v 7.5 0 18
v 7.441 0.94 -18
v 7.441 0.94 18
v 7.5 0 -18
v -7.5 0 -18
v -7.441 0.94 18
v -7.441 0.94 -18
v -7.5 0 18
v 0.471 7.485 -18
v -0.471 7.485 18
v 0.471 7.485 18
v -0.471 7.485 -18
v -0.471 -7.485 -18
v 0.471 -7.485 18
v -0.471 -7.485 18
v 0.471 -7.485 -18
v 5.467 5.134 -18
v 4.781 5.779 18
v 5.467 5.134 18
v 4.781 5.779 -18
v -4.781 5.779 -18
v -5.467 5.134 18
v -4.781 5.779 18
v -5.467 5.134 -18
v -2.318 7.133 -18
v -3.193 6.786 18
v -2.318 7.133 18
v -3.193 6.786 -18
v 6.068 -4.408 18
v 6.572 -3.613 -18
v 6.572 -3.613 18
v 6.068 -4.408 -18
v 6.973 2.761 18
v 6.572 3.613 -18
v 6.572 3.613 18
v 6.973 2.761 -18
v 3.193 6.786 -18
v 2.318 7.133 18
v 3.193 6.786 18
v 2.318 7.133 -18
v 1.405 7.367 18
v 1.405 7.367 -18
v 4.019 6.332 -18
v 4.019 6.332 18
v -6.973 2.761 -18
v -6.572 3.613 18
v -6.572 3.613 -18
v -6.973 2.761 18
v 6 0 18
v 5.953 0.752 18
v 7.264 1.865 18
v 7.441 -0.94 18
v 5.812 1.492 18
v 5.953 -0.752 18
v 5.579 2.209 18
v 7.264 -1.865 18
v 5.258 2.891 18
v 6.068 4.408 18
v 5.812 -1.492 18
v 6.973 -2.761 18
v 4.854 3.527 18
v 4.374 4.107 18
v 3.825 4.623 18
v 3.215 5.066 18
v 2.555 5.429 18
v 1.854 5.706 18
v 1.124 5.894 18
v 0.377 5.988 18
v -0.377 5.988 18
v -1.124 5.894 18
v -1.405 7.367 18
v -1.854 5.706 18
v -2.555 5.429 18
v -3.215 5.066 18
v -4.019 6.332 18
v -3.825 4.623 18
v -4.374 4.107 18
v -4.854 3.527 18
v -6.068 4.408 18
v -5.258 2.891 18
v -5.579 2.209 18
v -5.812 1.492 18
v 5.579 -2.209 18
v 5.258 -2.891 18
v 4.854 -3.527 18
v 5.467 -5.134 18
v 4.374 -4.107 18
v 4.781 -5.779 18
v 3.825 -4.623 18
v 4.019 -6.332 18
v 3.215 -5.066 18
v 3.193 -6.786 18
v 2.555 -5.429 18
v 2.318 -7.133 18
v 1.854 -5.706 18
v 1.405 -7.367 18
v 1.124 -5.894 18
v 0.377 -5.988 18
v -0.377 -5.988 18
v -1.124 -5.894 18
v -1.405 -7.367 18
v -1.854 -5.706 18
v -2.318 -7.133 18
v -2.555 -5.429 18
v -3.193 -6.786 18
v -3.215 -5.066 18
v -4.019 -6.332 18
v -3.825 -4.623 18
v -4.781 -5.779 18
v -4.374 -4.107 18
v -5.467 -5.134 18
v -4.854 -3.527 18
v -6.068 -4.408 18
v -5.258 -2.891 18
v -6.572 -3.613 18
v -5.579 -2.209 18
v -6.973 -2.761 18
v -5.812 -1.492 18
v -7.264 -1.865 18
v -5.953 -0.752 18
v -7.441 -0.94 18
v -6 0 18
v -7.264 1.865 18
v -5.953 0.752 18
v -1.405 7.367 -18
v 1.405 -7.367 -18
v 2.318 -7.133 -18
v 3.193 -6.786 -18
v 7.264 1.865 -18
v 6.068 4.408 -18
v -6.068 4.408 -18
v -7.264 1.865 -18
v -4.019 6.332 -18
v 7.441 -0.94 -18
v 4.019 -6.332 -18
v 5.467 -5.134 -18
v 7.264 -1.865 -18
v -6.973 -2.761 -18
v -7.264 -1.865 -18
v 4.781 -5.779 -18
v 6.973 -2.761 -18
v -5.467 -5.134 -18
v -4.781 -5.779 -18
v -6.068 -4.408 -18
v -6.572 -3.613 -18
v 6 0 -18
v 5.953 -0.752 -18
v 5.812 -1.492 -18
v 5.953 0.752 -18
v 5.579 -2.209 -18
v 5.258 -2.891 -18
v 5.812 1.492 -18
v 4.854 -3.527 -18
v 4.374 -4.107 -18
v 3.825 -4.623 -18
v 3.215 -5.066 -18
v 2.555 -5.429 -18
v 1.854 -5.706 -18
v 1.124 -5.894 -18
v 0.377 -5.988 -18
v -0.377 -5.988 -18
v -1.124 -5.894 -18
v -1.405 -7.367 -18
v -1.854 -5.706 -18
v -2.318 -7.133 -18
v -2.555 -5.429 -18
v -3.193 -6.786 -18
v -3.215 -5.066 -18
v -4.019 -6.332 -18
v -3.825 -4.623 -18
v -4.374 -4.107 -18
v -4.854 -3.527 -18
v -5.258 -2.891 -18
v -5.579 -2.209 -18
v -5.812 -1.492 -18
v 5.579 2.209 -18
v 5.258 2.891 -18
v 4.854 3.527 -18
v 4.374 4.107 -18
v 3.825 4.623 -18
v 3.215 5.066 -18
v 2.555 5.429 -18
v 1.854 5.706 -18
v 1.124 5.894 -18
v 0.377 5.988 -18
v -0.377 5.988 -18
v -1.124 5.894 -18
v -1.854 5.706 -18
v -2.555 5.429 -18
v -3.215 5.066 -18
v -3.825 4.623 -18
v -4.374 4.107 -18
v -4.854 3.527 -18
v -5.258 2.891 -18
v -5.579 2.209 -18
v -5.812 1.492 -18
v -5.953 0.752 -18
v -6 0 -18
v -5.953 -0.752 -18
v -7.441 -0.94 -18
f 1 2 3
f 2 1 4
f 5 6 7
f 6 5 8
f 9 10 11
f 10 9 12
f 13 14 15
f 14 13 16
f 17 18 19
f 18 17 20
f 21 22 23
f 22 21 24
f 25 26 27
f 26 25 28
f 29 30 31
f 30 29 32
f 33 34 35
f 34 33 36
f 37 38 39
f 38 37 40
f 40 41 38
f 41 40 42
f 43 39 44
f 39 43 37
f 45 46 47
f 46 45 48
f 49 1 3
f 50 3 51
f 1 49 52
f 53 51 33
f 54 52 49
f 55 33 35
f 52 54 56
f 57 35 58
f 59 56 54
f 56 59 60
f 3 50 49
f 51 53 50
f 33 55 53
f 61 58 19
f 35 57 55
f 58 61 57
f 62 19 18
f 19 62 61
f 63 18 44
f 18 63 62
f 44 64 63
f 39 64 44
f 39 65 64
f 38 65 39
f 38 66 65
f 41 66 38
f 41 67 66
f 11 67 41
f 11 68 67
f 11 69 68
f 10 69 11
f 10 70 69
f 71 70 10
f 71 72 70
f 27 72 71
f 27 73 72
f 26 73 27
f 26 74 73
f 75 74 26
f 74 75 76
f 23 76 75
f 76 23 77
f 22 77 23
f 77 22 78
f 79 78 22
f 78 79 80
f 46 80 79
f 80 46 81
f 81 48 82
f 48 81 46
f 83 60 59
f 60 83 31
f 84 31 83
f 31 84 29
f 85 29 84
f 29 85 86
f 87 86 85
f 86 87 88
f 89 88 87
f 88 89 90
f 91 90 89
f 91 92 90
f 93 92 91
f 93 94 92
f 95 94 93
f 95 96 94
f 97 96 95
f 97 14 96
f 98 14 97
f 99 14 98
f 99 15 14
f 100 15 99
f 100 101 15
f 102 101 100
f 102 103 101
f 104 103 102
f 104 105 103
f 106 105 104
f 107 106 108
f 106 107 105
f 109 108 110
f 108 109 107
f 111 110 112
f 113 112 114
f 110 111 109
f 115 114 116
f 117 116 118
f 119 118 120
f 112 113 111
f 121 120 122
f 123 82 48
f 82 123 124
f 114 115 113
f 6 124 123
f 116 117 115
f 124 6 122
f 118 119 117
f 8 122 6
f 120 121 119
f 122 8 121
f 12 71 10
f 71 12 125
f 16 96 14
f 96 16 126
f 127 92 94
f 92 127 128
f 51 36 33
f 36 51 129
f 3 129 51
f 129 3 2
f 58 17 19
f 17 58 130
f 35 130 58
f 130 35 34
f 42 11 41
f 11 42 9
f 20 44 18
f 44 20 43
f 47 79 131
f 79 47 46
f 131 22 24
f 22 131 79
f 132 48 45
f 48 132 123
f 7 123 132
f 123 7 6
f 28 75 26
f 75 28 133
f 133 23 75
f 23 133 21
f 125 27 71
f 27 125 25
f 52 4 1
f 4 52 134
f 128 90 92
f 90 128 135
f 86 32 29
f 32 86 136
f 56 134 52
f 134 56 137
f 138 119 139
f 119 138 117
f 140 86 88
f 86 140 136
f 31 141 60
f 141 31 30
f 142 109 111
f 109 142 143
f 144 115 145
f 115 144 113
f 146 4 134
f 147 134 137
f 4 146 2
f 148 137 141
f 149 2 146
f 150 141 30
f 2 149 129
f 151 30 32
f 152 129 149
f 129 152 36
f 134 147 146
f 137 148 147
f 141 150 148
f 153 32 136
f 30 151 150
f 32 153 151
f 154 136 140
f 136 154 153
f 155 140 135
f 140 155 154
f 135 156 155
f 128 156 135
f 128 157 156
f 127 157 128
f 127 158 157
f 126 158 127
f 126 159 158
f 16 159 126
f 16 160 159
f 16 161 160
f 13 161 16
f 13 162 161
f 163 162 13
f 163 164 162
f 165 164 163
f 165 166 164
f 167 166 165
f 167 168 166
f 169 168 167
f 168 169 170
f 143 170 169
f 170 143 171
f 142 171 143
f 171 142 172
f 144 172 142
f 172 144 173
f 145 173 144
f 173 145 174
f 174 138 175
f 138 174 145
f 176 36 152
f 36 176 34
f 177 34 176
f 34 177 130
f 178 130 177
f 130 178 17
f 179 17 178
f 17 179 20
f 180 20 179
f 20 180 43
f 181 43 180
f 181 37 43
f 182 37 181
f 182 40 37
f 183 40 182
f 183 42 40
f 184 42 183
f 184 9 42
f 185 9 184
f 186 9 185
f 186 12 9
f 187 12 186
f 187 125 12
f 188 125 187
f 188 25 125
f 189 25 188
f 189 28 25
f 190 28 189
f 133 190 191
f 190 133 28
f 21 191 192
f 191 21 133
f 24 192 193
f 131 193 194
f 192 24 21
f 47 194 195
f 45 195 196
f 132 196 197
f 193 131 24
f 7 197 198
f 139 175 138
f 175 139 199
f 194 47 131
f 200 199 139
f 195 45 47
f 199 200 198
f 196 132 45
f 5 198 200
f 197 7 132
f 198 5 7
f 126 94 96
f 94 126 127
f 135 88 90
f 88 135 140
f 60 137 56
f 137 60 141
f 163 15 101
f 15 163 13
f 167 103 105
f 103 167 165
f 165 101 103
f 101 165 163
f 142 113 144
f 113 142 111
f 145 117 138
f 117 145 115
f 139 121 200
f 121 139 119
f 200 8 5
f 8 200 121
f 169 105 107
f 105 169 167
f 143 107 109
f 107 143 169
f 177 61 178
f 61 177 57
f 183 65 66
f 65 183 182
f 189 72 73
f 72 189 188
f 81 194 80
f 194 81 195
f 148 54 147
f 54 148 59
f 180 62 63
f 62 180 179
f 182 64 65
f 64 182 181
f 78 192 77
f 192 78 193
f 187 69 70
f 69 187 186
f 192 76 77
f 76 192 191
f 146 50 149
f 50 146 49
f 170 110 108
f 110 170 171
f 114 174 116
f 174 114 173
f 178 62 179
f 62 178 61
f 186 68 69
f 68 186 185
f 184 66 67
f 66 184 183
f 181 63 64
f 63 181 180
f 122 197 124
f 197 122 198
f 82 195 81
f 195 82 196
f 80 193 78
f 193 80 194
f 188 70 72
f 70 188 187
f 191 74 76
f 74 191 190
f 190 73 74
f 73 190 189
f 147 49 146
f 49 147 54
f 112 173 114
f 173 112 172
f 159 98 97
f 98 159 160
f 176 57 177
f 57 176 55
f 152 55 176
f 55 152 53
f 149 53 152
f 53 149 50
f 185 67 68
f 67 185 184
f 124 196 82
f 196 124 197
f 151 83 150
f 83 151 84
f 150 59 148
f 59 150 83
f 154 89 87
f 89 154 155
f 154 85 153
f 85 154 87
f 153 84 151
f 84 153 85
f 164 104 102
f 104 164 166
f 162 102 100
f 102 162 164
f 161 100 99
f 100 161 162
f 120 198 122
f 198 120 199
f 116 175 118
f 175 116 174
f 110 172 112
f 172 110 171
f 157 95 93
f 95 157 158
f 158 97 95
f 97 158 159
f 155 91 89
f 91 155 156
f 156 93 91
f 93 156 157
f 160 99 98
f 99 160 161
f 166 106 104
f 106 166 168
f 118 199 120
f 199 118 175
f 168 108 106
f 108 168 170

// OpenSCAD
$fn = 50;


difference() {
	union() {
		translate(v = [0, 0, -18.0000000000]) {
			cylinder(h = 36, r = 7.5000000000);
		}
	}
	union() {
		translate(v = [0, 0, -100.0000000000]) {
			cylinder(h = 200, r = 6);
		}
	}
}
